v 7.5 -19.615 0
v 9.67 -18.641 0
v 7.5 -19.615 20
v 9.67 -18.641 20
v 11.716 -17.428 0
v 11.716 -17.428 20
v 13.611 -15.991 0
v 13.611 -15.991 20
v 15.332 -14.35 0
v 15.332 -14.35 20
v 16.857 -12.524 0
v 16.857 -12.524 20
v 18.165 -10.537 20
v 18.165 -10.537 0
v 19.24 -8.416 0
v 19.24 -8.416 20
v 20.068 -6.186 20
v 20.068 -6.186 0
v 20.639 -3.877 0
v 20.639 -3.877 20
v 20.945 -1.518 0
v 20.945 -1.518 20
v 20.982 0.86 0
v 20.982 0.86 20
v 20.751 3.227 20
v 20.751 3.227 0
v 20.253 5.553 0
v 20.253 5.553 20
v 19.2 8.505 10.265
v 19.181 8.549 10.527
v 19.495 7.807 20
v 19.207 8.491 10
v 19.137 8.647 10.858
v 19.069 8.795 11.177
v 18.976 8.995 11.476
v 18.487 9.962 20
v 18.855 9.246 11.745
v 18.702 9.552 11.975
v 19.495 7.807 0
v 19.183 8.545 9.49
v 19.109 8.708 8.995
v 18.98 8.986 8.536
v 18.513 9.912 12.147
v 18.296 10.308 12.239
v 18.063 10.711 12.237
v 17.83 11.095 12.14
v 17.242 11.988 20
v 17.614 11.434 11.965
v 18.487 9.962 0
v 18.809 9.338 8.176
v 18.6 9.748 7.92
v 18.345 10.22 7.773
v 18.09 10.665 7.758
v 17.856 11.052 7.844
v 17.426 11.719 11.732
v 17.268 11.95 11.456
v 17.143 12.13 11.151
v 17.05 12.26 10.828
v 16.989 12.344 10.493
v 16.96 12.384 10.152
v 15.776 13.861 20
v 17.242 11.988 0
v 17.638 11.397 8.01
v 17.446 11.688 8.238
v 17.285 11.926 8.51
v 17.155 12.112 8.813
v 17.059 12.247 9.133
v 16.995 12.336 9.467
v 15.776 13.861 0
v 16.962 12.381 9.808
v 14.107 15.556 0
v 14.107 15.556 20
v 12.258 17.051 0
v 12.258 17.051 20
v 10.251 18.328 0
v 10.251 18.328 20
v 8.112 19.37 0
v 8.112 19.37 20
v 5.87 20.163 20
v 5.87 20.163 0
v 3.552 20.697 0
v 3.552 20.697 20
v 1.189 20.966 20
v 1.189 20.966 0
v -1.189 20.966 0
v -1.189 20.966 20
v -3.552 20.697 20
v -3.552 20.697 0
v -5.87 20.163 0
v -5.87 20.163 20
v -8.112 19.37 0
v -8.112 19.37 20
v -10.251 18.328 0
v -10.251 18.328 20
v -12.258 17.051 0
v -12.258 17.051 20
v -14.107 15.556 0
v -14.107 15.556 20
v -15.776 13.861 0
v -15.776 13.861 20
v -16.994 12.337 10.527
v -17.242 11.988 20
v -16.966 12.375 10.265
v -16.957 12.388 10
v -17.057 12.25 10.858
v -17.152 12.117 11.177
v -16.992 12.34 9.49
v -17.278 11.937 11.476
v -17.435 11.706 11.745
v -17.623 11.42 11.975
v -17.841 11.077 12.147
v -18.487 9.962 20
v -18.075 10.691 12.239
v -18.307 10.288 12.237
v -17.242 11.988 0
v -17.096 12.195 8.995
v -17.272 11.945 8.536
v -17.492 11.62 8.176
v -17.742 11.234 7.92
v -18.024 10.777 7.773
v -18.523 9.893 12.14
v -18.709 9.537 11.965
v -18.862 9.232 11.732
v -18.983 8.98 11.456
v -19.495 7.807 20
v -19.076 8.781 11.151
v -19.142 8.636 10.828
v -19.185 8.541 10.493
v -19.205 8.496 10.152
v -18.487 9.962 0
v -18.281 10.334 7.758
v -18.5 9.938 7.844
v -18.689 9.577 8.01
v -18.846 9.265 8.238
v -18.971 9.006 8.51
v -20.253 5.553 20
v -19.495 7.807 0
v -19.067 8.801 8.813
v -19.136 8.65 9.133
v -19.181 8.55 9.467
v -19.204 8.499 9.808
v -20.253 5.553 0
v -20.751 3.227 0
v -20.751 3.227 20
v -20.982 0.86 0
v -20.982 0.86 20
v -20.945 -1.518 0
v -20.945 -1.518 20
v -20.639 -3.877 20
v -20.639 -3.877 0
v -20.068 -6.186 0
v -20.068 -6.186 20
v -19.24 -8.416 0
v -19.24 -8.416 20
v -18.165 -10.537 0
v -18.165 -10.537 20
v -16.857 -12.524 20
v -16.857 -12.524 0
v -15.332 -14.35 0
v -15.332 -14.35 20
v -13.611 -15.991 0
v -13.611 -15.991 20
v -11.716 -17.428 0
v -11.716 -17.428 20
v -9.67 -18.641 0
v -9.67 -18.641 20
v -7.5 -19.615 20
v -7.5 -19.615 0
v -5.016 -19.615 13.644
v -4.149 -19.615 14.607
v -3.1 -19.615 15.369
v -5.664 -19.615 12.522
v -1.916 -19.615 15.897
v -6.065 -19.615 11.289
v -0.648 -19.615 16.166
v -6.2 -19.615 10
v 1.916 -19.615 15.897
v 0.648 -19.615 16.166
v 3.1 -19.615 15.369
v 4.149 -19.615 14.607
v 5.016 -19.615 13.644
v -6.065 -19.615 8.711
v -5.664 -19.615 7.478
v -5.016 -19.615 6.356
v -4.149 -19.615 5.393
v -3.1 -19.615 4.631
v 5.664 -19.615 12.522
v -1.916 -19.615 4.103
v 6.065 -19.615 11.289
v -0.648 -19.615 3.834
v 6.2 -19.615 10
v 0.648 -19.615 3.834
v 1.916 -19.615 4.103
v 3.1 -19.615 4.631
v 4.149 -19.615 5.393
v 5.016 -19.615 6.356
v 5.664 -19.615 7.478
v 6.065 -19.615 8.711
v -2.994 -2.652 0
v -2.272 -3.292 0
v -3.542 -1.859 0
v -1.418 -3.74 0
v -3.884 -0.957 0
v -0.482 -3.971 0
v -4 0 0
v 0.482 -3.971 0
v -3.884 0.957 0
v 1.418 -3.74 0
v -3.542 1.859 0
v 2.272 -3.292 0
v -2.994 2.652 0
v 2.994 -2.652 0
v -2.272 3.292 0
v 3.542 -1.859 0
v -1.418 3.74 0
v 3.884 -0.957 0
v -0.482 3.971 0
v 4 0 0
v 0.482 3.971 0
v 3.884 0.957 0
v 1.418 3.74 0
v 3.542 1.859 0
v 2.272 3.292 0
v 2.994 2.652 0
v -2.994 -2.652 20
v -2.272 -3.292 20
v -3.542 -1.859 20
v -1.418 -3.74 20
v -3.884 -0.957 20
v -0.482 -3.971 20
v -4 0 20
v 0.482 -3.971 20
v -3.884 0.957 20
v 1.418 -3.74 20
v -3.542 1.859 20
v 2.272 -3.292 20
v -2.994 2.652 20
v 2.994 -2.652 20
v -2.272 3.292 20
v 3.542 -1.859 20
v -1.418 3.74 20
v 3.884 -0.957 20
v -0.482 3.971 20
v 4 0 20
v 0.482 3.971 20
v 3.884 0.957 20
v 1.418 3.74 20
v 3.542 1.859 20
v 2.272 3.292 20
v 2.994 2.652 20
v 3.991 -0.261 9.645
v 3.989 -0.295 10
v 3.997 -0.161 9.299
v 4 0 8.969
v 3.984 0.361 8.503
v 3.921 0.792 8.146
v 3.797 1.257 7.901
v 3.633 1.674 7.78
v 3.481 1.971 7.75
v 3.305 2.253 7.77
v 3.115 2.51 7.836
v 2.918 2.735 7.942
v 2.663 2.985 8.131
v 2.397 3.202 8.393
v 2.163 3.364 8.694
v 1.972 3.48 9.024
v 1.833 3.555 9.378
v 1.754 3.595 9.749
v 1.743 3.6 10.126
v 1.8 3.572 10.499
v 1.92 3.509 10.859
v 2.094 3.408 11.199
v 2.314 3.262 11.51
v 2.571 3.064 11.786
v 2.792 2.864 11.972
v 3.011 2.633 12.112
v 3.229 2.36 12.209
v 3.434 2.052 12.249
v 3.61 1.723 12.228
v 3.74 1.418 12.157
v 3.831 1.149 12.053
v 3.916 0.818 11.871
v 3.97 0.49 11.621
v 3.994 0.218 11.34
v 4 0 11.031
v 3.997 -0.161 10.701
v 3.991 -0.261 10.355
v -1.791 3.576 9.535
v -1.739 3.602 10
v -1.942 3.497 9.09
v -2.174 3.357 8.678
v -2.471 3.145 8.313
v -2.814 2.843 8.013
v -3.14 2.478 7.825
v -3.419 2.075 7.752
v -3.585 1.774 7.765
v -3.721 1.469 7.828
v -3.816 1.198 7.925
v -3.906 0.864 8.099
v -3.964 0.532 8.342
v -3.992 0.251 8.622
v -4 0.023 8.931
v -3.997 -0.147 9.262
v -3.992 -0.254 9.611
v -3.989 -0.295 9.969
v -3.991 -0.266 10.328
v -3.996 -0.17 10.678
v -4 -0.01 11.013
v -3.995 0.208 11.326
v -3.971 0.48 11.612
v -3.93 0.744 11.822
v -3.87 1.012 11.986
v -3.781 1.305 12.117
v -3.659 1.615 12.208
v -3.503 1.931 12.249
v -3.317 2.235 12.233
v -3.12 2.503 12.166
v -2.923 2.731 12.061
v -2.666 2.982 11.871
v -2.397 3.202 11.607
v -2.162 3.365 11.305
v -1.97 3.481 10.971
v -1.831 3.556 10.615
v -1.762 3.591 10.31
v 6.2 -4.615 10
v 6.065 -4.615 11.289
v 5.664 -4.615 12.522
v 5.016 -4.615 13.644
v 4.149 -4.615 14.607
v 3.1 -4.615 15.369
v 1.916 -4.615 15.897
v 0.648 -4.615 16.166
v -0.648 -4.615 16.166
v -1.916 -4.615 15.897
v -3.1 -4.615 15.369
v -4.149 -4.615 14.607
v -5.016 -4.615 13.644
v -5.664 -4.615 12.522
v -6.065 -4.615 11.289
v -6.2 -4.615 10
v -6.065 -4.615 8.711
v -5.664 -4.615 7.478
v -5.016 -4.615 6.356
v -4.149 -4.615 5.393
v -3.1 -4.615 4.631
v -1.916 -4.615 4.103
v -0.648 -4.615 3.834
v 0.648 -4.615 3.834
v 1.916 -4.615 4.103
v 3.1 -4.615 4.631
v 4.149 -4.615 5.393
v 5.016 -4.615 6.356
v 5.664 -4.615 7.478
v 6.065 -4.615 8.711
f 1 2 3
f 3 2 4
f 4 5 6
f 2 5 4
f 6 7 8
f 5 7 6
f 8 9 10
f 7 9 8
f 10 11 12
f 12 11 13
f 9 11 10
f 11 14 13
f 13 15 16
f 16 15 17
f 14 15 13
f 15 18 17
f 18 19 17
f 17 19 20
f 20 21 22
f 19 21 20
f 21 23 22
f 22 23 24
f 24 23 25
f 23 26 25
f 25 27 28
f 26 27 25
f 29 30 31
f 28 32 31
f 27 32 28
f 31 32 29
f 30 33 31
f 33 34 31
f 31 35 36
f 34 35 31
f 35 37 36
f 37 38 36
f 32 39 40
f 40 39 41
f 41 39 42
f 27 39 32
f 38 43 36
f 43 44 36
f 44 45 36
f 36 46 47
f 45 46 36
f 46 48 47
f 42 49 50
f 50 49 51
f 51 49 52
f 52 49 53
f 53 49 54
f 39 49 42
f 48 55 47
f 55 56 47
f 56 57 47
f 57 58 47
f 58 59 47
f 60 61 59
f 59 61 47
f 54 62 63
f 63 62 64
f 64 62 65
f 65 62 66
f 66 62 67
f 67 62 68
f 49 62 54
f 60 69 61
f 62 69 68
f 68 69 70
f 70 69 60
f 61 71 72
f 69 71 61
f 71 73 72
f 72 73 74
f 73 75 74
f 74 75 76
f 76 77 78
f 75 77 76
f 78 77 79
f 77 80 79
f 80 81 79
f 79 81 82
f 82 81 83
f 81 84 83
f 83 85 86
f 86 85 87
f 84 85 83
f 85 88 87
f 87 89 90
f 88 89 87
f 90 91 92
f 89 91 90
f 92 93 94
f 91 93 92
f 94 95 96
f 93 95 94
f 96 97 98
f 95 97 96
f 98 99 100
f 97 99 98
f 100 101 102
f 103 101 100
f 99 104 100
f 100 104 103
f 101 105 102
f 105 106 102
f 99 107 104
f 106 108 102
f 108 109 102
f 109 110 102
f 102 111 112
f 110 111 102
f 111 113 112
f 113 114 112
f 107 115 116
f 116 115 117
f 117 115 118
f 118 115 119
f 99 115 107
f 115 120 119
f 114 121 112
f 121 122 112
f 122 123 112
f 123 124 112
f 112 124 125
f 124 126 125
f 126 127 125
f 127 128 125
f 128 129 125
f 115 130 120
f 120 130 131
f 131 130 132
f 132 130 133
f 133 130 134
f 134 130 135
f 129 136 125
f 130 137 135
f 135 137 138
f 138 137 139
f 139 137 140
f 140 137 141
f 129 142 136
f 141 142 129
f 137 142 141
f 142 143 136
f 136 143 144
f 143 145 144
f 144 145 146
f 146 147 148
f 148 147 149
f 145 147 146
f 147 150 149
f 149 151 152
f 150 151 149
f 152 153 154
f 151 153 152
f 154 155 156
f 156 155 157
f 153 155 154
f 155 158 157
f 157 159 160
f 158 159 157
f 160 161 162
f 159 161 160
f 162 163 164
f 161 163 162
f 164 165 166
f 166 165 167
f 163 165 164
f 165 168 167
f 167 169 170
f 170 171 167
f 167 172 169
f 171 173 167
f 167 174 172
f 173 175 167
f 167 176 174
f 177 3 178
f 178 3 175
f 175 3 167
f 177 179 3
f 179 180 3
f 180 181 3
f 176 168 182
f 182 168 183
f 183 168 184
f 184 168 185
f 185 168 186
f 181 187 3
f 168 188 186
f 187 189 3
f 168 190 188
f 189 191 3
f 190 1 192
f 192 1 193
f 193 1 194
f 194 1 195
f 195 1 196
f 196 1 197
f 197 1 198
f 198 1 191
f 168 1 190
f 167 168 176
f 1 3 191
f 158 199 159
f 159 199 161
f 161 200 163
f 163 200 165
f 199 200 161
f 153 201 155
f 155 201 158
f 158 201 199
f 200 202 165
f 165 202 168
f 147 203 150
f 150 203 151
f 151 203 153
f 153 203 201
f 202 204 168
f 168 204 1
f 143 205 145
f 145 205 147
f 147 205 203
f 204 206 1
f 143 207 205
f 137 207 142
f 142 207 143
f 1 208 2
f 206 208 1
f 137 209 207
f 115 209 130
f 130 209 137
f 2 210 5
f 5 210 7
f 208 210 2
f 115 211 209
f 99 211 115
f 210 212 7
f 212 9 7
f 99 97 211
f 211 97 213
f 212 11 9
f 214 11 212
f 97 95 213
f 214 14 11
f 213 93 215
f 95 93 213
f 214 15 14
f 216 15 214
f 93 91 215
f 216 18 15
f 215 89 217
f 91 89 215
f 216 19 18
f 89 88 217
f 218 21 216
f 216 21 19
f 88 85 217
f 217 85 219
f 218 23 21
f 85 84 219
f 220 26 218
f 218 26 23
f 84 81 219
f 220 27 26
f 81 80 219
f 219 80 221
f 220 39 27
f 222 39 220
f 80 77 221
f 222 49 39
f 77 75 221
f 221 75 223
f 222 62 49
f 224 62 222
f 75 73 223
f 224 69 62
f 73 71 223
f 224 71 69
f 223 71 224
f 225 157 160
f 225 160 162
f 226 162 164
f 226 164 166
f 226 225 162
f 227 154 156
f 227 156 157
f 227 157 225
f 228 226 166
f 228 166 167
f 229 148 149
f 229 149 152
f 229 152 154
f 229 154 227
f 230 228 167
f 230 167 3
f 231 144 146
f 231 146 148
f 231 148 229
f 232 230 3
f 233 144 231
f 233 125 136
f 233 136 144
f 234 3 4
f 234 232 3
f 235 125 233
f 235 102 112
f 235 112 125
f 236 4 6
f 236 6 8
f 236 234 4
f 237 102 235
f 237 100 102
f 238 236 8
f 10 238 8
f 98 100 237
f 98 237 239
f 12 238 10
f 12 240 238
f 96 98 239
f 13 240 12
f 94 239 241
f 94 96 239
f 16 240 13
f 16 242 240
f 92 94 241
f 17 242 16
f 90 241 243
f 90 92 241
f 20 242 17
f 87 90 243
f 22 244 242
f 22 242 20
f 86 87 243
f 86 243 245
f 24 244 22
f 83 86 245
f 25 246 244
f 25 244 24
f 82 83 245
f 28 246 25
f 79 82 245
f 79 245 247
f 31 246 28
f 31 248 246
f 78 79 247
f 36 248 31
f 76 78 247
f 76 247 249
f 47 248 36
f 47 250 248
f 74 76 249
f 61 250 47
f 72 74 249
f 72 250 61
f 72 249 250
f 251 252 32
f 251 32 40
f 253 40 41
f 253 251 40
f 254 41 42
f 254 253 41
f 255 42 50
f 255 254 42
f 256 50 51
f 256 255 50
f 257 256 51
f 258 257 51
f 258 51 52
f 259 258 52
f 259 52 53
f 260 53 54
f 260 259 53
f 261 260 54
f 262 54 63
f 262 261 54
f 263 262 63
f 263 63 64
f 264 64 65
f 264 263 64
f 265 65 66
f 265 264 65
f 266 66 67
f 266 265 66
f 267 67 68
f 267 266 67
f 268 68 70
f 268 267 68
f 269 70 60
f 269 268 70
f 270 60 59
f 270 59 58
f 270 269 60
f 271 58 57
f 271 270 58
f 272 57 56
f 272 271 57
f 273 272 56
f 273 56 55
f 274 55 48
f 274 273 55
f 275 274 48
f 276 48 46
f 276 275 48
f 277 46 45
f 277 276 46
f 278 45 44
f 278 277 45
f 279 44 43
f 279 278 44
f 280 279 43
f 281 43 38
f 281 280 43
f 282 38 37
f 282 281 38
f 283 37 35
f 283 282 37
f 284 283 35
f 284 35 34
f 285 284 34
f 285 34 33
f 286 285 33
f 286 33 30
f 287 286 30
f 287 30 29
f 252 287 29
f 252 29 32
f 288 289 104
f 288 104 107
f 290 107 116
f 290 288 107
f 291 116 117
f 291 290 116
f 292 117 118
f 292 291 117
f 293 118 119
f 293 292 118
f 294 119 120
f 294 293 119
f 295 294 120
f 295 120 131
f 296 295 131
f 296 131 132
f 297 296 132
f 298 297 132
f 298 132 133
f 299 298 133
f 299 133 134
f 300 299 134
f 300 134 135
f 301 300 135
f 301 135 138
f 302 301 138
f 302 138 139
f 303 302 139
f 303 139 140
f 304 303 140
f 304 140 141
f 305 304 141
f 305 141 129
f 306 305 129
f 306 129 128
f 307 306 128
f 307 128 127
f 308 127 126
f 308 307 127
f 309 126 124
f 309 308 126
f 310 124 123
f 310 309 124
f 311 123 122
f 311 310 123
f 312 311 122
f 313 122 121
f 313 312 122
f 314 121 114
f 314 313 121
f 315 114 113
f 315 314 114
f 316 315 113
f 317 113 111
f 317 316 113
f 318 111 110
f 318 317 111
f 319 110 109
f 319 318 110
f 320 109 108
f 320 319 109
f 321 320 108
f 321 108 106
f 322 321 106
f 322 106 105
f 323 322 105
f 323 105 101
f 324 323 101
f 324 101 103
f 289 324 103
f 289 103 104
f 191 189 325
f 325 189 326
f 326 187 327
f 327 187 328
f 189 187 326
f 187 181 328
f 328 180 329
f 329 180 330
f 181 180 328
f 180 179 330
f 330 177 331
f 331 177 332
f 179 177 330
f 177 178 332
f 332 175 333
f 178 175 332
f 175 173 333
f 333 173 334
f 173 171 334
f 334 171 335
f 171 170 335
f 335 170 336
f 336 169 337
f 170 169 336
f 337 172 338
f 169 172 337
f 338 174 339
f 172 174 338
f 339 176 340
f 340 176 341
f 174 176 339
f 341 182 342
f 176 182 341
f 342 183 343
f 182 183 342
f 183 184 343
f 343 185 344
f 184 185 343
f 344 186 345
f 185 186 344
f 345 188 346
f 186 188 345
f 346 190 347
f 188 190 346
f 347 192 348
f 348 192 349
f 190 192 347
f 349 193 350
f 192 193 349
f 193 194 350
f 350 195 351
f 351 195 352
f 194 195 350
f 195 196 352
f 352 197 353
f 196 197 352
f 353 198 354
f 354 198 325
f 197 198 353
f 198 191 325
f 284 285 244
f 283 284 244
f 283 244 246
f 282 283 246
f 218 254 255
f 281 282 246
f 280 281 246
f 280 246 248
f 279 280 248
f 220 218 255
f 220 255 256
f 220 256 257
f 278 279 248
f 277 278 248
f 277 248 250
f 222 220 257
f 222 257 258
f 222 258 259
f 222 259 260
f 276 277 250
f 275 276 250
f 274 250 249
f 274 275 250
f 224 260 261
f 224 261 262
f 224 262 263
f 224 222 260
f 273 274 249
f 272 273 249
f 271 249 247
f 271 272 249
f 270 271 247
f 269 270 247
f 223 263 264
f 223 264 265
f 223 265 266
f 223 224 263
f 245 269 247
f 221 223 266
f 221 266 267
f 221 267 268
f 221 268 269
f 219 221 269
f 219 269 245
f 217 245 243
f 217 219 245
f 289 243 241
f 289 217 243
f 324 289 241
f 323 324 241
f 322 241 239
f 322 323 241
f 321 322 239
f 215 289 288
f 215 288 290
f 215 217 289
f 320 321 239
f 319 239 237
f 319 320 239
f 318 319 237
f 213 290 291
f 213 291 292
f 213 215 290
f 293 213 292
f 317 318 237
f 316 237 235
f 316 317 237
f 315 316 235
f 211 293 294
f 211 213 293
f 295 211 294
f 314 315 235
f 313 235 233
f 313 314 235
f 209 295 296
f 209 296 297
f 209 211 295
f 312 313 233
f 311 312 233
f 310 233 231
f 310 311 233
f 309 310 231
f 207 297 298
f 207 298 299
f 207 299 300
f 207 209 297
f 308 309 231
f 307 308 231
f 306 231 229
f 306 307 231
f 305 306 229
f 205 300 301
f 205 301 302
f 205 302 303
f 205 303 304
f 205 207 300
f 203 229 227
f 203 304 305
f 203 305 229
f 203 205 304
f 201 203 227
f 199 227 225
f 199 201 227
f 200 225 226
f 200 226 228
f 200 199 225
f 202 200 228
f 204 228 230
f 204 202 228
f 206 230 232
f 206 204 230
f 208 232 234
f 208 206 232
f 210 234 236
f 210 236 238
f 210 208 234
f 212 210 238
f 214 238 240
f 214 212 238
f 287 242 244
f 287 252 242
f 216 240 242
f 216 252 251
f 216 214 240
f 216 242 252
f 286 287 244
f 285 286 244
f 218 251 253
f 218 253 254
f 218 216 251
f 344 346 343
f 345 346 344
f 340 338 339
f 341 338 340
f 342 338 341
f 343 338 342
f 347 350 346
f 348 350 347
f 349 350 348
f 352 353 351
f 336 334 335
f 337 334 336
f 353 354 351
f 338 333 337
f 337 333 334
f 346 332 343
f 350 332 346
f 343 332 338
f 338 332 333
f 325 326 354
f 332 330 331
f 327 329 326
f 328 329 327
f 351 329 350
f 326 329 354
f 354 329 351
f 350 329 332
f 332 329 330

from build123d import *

# Parameters (mm, degrees)
SKETCH_R           = 4
PAD_DEPTH          = 20
SKETCH001_R        = 6.2
POCKET_DEPTH       = 15
SKETCH002_R        = 2.25
POCKET001_DEPTH    = 69
POLARPATTERN_COUNT = 2
POLARPATTERN_ANGLE = 120


with BuildPart() as part:
    # Sketch → Pad (new body)
    with BuildSketch(Plane.XY):
        with BuildLine():
            ThreePointArc((7.5, -19.615045), (0, 21), (-7.5, -19.615045))
            Line((-7.5, -19.615045), (7.5, -19.615045))
        make_face()
        Circle(SKETCH_R, mode=Mode.SUBTRACT)
    extrude(amount=PAD_DEPTH)

    # Sketch001 (on DatumPlane) → Pocket (cut)
    with BuildSketch(Plane.XZ.offset(19.615045)):
        with Locations((0, 10)):
            Circle(SKETCH001_R)
    extrude(amount=-POCKET_DEPTH, mode=Mode.SUBTRACT)

    # Sketch002 (on DatumPlane) → Pocket001 (cut)
    with BuildSketch(Plane(origin=(0, 0, 10), x_dir=(0.5, -0.866025, 0), z_dir=(0.866025, 0.5, 0))):
        Circle(SKETCH002_R)
    pocket001 = extrude(amount=POCKET001_DEPTH, mode=Mode.SUBTRACT)

    # PolarPattern: Pocket001 ×2 about axis
    polarpattern_axis = Axis((0, 0, 0), (0, 0, 1))
    for i in range(1, POLARPATTERN_COUNT):
        add(pocket001.rotate(polarpattern_axis, i * POLARPATTERN_ANGLE / (POLARPATTERN_COUNT - 1)), mode=Mode.SUBTRACT)


solid = part.part
